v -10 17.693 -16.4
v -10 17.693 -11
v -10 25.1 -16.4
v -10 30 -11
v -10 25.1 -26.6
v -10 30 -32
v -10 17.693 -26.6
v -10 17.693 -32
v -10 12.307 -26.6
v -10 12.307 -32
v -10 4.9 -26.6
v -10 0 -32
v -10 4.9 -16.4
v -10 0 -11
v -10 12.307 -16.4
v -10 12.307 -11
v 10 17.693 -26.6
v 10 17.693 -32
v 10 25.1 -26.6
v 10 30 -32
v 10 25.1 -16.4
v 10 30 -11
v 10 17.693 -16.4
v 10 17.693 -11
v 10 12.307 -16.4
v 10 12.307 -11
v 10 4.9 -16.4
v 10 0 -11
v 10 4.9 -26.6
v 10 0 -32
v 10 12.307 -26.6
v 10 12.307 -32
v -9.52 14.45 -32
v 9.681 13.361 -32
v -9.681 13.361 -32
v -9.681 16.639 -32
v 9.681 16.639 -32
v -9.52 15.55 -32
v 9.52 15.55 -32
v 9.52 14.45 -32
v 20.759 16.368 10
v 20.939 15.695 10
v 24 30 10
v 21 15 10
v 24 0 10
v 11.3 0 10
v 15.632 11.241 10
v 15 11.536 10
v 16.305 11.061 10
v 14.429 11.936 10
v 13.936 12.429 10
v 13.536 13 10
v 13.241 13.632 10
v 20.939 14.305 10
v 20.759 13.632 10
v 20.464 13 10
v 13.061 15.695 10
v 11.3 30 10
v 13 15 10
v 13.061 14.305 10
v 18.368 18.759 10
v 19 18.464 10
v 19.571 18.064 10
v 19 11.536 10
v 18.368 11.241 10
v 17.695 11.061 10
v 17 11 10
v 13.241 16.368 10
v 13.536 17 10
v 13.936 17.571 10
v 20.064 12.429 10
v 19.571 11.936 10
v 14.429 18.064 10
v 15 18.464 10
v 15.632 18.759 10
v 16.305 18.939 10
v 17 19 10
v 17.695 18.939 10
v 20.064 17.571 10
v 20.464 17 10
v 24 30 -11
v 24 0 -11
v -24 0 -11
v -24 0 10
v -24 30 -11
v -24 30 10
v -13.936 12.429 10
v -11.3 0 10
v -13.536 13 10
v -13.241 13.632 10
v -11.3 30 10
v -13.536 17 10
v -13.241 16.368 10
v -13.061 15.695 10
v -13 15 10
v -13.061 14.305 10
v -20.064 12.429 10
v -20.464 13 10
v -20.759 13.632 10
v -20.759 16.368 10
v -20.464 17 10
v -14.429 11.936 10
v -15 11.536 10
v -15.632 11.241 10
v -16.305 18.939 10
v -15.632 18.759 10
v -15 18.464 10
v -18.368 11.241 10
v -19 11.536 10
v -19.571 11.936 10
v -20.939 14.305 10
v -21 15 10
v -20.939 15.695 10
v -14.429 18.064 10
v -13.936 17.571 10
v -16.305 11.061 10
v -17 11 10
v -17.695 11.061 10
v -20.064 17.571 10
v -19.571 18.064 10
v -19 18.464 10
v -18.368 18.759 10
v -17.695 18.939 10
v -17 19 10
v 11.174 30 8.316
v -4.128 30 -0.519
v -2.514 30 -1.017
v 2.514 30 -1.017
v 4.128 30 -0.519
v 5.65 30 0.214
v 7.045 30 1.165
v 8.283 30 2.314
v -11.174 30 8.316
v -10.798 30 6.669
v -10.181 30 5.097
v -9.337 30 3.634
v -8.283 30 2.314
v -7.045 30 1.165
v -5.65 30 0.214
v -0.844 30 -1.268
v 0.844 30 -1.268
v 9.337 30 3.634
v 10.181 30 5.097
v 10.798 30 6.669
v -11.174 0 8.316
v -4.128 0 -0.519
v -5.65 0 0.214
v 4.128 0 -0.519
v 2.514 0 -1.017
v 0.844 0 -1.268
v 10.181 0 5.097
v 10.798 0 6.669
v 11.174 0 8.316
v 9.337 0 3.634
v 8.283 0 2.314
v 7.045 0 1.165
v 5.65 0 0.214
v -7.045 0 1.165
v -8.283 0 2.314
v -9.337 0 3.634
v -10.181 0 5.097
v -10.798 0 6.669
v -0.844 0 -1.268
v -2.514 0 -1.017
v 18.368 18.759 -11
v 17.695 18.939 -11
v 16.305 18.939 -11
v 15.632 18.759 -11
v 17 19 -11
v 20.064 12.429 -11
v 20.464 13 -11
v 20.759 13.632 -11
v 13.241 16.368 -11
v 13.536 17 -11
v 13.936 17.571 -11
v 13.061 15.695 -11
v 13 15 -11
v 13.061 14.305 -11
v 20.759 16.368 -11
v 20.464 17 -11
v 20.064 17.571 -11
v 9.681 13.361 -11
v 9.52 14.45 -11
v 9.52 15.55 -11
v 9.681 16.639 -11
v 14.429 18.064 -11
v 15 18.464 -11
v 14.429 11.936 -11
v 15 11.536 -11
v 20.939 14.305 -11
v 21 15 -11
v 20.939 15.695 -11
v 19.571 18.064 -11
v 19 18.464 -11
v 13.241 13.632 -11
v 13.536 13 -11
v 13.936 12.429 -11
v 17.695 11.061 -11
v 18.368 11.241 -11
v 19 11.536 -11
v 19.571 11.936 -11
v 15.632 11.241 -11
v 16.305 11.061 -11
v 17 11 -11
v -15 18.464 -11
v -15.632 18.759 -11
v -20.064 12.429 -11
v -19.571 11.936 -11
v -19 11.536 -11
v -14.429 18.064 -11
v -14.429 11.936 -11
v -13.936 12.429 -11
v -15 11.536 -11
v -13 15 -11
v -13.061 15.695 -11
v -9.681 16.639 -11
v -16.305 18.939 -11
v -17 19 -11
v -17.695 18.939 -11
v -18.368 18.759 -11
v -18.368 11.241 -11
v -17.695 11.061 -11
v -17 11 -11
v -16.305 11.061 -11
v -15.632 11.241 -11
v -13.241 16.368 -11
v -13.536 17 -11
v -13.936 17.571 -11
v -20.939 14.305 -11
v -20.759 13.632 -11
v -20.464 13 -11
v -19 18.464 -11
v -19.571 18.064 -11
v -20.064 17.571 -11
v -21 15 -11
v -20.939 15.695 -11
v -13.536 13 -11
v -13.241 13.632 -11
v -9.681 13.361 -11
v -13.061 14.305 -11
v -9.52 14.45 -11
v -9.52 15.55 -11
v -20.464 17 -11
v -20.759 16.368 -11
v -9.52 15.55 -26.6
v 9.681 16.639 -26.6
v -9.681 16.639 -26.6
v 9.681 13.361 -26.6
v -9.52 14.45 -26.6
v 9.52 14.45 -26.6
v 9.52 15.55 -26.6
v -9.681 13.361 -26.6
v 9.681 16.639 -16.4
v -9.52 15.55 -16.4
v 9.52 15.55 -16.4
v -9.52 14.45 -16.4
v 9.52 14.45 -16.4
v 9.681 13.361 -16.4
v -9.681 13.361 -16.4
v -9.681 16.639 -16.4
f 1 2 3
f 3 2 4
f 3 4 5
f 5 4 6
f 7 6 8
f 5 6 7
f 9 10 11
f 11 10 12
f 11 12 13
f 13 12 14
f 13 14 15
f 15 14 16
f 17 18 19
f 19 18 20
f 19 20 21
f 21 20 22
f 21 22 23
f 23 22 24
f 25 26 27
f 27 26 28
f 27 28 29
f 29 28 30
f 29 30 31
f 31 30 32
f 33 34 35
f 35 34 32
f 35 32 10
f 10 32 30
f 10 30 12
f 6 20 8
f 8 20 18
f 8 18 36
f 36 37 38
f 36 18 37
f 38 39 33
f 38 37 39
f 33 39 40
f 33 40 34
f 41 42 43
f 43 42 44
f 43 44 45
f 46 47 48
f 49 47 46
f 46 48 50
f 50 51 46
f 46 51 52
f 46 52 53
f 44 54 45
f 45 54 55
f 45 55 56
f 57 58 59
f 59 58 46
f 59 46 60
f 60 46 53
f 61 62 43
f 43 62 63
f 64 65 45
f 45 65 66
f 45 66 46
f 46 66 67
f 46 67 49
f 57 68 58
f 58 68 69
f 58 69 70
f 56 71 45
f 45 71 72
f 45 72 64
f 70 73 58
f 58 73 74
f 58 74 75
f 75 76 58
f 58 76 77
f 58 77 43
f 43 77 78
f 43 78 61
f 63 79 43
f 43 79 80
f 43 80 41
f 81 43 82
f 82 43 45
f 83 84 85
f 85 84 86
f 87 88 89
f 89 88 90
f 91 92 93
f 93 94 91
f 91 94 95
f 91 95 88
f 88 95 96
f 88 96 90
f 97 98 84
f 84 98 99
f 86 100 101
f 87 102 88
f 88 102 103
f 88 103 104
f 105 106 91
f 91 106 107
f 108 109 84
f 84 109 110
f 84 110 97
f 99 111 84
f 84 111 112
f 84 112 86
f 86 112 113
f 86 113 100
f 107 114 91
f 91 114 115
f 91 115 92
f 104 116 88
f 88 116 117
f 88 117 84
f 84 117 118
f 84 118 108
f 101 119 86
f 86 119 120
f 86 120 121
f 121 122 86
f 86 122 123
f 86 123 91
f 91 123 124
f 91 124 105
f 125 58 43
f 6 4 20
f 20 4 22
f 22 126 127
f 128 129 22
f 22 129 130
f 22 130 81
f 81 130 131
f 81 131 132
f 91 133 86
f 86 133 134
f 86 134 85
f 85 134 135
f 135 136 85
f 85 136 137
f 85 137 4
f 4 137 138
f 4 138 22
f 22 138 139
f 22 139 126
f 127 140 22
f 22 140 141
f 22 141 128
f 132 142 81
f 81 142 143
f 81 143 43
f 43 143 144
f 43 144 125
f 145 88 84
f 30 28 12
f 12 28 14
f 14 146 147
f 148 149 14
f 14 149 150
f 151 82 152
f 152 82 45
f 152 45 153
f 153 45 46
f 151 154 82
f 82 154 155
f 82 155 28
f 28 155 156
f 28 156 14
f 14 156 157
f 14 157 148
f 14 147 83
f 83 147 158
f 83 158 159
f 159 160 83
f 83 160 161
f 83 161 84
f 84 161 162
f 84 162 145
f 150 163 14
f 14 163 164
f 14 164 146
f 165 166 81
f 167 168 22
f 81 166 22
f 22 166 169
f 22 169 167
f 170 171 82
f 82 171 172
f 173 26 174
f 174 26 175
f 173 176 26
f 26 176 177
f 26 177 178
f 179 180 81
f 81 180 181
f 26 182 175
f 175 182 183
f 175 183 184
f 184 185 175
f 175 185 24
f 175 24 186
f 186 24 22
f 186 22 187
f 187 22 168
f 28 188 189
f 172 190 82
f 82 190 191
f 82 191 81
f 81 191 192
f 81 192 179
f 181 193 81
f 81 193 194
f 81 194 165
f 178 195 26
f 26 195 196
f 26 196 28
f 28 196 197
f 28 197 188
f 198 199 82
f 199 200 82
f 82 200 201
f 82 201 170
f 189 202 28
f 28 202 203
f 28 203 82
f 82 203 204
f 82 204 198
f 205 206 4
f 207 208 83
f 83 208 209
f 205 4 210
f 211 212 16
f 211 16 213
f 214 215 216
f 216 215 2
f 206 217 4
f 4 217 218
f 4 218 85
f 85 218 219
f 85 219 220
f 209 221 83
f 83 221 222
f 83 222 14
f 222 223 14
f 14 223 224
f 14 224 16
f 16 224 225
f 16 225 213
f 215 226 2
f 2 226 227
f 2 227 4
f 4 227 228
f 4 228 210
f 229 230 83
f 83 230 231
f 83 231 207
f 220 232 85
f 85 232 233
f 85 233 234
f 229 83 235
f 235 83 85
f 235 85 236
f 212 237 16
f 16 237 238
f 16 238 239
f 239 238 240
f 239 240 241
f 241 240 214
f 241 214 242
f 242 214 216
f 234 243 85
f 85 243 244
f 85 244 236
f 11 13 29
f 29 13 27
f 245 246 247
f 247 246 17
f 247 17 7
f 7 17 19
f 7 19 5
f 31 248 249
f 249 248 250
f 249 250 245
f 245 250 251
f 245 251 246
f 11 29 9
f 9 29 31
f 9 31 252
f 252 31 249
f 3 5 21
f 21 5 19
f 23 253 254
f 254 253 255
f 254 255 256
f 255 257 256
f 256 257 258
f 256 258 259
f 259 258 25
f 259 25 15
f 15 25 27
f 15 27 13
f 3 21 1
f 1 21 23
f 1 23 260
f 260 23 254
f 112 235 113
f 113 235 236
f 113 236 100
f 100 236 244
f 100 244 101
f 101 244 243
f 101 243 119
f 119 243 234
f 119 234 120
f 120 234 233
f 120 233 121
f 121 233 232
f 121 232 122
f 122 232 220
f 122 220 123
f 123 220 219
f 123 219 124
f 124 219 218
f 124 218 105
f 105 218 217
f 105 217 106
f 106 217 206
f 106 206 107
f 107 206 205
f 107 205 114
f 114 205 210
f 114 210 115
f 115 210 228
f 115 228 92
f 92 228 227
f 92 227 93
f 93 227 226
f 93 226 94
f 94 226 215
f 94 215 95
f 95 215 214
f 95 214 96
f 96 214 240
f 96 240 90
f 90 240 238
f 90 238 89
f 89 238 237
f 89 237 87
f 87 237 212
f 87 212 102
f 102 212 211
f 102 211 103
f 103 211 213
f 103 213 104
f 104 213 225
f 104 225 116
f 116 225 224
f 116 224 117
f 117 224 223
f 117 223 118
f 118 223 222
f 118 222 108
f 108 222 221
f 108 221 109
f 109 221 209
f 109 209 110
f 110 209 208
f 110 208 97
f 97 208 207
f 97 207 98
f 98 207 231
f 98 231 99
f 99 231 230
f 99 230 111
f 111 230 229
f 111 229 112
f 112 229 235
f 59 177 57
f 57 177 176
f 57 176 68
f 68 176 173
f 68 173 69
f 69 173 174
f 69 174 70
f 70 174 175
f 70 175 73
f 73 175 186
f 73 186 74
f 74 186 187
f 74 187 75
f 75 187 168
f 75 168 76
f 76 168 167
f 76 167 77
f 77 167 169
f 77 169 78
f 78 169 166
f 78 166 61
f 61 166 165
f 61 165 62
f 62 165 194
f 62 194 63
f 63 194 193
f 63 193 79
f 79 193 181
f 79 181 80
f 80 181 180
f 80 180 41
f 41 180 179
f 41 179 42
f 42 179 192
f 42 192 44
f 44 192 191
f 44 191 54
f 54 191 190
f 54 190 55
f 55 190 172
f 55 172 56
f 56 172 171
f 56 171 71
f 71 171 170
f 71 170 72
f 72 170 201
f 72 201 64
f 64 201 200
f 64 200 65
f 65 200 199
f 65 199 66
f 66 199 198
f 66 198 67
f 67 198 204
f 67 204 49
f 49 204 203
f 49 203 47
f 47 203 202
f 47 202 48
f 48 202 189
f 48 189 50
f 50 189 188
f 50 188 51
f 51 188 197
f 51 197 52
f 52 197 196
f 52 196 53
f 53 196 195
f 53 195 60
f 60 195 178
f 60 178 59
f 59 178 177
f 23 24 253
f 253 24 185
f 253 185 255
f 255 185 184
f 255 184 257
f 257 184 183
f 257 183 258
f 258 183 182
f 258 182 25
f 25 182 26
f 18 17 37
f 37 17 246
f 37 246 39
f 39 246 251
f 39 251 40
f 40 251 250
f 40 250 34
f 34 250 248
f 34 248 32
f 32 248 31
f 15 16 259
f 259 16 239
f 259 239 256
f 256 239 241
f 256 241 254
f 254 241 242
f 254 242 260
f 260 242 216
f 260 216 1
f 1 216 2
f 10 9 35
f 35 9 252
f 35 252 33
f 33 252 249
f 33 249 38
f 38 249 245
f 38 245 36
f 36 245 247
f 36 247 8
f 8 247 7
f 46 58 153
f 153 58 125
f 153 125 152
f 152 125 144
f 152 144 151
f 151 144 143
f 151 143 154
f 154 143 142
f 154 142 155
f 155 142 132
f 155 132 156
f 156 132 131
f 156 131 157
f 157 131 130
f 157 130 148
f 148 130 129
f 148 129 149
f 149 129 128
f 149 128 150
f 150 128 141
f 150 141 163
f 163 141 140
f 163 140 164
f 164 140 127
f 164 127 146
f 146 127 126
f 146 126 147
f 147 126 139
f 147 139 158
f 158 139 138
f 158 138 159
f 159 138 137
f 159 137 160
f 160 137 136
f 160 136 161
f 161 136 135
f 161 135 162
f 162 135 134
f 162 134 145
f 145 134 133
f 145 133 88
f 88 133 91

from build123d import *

# Parameters (mm, degrees)
SKETCH_1_W          = 48
SKETCH_1_H          = 20
EXTRUDE_1_DEPTH     = 30
SKETCH_2_W          = 14
SKETCH_2_H          = 30
CUT_EXTRUDE_1_DEPTH = 7
SKETCH_7_W          = 22
SKETCH_7_H          = 30
EXTRUDE_2_DEPTH     = 48
SKETCH_8_W          = 21
SKETCH_8_H          = 30
CUT_EXTRUDE_2_DEPTH = 14
SKETCH_9_W          = 21
SKETCH_9_H          = 30
CUT_EXTRUDE_3_DEPTH = 14
SKETCH_11_W         = 10.2
SKETCH_11_H         = 20.2
CUT_EXTRUDE_4_DEPTH = 56.497747702
SKETCH_13_R         = 4
CUT_EXTRUDE_5_DEPTH = 44.783558558
SKETCH_14_R         = 4
CUT_EXTRUDE_6_DEPTH = 44.783558558
FILLET_1_R          = 7
SKETCH_20_R         = 7.5
CUT_EXTRUDE_8_DEPTH = 44.783558558
SKETCH2_R           = 11.3
CUT_EXTRUDE1_DEPTH  = 51


with BuildPart() as part:
    # Эскиз1 → Бобышка-Вытянуть1 (new body)
    with BuildSketch(Plane(origin=(0, 0, 0), x_dir=(1, 0, 0), z_dir=(0, 1, 0))):
        Rectangle(SKETCH_1_W, SKETCH_1_H)
    extrude(amount=EXTRUDE_1_DEPTH)

    # Эскиз2 → Вырез-Вытянуть1 (cut)
    with BuildSketch(Plane.XY.offset(10)):
        with Locations((0, 15)):
            Rectangle(SKETCH_2_W, SKETCH_2_H)
    extrude(amount=-CUT_EXTRUDE_1_DEPTH, mode=Mode.SUBTRACT)

    # Эскиз7 → Бобышка-Вытянуть2 (add)
    with BuildSketch(Plane(origin=(24, 0, 0), x_dir=(0, 0, -1), z_dir=(1, 0, 0))):
        with Locations((21, 15)):
            Rectangle(SKETCH_7_W, SKETCH_7_H)
    extrude(amount=-EXTRUDE_2_DEPTH)

    # Эскиз8 → Вырез-Вытянуть2 (cut)
    with BuildSketch(Plane(origin=(24, 0, 0), x_dir=(0, 0, -1), z_dir=(1, 0, 0))):
        with Locations((21.5, 15)):
            Rectangle(SKETCH_8_W, SKETCH_8_H)
    extrude(amount=-CUT_EXTRUDE_2_DEPTH, mode=Mode.SUBTRACT)

    # Эскиз9 → Вырез-Вытянуть3 (cut)
    with BuildSketch(Plane.ZY.offset(24)):
        with Locations((-21.5, 15)):
            Rectangle(SKETCH_9_W, SKETCH_9_H)
    extrude(amount=-CUT_EXTRUDE_3_DEPTH, mode=Mode.SUBTRACT)

    # Эскиз11 → Вырез-Вытянуть4 (cut, through all)
    with BuildSketch(Plane.ZY.offset(10)):
        with Locations((-21.5, 15)):
            Rectangle(SKETCH_11_W, SKETCH_11_H)
    extrude(amount=-CUT_EXTRUDE_4_DEPTH, mode=Mode.SUBTRACT)

    # Эскиз13 → Вырез-Вытянуть5 (cut, through all)
    with BuildSketch(Plane(origin=(0, 0, -11), x_dir=(-1, 0, 0), z_dir=(0, 0, -1))):
        with Locations((17, 15)):
            Circle(SKETCH_13_R)
    extrude(amount=-CUT_EXTRUDE_5_DEPTH, mode=Mode.SUBTRACT)

    # Эскиз14 → Вырез-Вытянуть6 (cut, through all)
    with BuildSketch(Plane(origin=(0, 0, -11), x_dir=(-1, 0, 0), z_dir=(0, 0, -1))):
        with Locations((-17, 15)):
            Circle(SKETCH_14_R)
    extrude(amount=-CUT_EXTRUDE_6_DEPTH, mode=Mode.SUBTRACT)

    # Скругление1
    fillet_1_edges = [part.edges().sort_by_distance(p)[0] for p in [
        (-7, 15, 3),
        (7, 15, 3),
    ]]
    fillet(fillet_1_edges, radius=FILLET_1_R - 0.0001)  # a hair under: the kernel refuses the full size

    # Эскиз20 → Вырез-Вытянуть8 (cut, through all)
    with BuildSketch(Plane(origin=(0, 0, -11), x_dir=(-1, 0, 0), z_dir=(0, 0, -1))):
        with Locations((-17, 15)):
            Circle(SKETCH_20_R)
        with Locations((17, 15)):
            Circle(SKETCH_20_R)
    extrude(amount=CUT_EXTRUDE_8_DEPTH, mode=Mode.SUBTRACT)

    # Sketch2 → Cut-Extrude1 (cut, through all)
    with BuildSketch(Plane(origin=(0, 30, 0), x_dir=(1, 0, 0), z_dir=(0, 1, 0))):
        with Locations((0, -10)):
            Circle(SKETCH2_R)
    extrude(amount=-CUT_EXTRUDE1_DEPTH, mode=Mode.SUBTRACT)


solid = part.part
